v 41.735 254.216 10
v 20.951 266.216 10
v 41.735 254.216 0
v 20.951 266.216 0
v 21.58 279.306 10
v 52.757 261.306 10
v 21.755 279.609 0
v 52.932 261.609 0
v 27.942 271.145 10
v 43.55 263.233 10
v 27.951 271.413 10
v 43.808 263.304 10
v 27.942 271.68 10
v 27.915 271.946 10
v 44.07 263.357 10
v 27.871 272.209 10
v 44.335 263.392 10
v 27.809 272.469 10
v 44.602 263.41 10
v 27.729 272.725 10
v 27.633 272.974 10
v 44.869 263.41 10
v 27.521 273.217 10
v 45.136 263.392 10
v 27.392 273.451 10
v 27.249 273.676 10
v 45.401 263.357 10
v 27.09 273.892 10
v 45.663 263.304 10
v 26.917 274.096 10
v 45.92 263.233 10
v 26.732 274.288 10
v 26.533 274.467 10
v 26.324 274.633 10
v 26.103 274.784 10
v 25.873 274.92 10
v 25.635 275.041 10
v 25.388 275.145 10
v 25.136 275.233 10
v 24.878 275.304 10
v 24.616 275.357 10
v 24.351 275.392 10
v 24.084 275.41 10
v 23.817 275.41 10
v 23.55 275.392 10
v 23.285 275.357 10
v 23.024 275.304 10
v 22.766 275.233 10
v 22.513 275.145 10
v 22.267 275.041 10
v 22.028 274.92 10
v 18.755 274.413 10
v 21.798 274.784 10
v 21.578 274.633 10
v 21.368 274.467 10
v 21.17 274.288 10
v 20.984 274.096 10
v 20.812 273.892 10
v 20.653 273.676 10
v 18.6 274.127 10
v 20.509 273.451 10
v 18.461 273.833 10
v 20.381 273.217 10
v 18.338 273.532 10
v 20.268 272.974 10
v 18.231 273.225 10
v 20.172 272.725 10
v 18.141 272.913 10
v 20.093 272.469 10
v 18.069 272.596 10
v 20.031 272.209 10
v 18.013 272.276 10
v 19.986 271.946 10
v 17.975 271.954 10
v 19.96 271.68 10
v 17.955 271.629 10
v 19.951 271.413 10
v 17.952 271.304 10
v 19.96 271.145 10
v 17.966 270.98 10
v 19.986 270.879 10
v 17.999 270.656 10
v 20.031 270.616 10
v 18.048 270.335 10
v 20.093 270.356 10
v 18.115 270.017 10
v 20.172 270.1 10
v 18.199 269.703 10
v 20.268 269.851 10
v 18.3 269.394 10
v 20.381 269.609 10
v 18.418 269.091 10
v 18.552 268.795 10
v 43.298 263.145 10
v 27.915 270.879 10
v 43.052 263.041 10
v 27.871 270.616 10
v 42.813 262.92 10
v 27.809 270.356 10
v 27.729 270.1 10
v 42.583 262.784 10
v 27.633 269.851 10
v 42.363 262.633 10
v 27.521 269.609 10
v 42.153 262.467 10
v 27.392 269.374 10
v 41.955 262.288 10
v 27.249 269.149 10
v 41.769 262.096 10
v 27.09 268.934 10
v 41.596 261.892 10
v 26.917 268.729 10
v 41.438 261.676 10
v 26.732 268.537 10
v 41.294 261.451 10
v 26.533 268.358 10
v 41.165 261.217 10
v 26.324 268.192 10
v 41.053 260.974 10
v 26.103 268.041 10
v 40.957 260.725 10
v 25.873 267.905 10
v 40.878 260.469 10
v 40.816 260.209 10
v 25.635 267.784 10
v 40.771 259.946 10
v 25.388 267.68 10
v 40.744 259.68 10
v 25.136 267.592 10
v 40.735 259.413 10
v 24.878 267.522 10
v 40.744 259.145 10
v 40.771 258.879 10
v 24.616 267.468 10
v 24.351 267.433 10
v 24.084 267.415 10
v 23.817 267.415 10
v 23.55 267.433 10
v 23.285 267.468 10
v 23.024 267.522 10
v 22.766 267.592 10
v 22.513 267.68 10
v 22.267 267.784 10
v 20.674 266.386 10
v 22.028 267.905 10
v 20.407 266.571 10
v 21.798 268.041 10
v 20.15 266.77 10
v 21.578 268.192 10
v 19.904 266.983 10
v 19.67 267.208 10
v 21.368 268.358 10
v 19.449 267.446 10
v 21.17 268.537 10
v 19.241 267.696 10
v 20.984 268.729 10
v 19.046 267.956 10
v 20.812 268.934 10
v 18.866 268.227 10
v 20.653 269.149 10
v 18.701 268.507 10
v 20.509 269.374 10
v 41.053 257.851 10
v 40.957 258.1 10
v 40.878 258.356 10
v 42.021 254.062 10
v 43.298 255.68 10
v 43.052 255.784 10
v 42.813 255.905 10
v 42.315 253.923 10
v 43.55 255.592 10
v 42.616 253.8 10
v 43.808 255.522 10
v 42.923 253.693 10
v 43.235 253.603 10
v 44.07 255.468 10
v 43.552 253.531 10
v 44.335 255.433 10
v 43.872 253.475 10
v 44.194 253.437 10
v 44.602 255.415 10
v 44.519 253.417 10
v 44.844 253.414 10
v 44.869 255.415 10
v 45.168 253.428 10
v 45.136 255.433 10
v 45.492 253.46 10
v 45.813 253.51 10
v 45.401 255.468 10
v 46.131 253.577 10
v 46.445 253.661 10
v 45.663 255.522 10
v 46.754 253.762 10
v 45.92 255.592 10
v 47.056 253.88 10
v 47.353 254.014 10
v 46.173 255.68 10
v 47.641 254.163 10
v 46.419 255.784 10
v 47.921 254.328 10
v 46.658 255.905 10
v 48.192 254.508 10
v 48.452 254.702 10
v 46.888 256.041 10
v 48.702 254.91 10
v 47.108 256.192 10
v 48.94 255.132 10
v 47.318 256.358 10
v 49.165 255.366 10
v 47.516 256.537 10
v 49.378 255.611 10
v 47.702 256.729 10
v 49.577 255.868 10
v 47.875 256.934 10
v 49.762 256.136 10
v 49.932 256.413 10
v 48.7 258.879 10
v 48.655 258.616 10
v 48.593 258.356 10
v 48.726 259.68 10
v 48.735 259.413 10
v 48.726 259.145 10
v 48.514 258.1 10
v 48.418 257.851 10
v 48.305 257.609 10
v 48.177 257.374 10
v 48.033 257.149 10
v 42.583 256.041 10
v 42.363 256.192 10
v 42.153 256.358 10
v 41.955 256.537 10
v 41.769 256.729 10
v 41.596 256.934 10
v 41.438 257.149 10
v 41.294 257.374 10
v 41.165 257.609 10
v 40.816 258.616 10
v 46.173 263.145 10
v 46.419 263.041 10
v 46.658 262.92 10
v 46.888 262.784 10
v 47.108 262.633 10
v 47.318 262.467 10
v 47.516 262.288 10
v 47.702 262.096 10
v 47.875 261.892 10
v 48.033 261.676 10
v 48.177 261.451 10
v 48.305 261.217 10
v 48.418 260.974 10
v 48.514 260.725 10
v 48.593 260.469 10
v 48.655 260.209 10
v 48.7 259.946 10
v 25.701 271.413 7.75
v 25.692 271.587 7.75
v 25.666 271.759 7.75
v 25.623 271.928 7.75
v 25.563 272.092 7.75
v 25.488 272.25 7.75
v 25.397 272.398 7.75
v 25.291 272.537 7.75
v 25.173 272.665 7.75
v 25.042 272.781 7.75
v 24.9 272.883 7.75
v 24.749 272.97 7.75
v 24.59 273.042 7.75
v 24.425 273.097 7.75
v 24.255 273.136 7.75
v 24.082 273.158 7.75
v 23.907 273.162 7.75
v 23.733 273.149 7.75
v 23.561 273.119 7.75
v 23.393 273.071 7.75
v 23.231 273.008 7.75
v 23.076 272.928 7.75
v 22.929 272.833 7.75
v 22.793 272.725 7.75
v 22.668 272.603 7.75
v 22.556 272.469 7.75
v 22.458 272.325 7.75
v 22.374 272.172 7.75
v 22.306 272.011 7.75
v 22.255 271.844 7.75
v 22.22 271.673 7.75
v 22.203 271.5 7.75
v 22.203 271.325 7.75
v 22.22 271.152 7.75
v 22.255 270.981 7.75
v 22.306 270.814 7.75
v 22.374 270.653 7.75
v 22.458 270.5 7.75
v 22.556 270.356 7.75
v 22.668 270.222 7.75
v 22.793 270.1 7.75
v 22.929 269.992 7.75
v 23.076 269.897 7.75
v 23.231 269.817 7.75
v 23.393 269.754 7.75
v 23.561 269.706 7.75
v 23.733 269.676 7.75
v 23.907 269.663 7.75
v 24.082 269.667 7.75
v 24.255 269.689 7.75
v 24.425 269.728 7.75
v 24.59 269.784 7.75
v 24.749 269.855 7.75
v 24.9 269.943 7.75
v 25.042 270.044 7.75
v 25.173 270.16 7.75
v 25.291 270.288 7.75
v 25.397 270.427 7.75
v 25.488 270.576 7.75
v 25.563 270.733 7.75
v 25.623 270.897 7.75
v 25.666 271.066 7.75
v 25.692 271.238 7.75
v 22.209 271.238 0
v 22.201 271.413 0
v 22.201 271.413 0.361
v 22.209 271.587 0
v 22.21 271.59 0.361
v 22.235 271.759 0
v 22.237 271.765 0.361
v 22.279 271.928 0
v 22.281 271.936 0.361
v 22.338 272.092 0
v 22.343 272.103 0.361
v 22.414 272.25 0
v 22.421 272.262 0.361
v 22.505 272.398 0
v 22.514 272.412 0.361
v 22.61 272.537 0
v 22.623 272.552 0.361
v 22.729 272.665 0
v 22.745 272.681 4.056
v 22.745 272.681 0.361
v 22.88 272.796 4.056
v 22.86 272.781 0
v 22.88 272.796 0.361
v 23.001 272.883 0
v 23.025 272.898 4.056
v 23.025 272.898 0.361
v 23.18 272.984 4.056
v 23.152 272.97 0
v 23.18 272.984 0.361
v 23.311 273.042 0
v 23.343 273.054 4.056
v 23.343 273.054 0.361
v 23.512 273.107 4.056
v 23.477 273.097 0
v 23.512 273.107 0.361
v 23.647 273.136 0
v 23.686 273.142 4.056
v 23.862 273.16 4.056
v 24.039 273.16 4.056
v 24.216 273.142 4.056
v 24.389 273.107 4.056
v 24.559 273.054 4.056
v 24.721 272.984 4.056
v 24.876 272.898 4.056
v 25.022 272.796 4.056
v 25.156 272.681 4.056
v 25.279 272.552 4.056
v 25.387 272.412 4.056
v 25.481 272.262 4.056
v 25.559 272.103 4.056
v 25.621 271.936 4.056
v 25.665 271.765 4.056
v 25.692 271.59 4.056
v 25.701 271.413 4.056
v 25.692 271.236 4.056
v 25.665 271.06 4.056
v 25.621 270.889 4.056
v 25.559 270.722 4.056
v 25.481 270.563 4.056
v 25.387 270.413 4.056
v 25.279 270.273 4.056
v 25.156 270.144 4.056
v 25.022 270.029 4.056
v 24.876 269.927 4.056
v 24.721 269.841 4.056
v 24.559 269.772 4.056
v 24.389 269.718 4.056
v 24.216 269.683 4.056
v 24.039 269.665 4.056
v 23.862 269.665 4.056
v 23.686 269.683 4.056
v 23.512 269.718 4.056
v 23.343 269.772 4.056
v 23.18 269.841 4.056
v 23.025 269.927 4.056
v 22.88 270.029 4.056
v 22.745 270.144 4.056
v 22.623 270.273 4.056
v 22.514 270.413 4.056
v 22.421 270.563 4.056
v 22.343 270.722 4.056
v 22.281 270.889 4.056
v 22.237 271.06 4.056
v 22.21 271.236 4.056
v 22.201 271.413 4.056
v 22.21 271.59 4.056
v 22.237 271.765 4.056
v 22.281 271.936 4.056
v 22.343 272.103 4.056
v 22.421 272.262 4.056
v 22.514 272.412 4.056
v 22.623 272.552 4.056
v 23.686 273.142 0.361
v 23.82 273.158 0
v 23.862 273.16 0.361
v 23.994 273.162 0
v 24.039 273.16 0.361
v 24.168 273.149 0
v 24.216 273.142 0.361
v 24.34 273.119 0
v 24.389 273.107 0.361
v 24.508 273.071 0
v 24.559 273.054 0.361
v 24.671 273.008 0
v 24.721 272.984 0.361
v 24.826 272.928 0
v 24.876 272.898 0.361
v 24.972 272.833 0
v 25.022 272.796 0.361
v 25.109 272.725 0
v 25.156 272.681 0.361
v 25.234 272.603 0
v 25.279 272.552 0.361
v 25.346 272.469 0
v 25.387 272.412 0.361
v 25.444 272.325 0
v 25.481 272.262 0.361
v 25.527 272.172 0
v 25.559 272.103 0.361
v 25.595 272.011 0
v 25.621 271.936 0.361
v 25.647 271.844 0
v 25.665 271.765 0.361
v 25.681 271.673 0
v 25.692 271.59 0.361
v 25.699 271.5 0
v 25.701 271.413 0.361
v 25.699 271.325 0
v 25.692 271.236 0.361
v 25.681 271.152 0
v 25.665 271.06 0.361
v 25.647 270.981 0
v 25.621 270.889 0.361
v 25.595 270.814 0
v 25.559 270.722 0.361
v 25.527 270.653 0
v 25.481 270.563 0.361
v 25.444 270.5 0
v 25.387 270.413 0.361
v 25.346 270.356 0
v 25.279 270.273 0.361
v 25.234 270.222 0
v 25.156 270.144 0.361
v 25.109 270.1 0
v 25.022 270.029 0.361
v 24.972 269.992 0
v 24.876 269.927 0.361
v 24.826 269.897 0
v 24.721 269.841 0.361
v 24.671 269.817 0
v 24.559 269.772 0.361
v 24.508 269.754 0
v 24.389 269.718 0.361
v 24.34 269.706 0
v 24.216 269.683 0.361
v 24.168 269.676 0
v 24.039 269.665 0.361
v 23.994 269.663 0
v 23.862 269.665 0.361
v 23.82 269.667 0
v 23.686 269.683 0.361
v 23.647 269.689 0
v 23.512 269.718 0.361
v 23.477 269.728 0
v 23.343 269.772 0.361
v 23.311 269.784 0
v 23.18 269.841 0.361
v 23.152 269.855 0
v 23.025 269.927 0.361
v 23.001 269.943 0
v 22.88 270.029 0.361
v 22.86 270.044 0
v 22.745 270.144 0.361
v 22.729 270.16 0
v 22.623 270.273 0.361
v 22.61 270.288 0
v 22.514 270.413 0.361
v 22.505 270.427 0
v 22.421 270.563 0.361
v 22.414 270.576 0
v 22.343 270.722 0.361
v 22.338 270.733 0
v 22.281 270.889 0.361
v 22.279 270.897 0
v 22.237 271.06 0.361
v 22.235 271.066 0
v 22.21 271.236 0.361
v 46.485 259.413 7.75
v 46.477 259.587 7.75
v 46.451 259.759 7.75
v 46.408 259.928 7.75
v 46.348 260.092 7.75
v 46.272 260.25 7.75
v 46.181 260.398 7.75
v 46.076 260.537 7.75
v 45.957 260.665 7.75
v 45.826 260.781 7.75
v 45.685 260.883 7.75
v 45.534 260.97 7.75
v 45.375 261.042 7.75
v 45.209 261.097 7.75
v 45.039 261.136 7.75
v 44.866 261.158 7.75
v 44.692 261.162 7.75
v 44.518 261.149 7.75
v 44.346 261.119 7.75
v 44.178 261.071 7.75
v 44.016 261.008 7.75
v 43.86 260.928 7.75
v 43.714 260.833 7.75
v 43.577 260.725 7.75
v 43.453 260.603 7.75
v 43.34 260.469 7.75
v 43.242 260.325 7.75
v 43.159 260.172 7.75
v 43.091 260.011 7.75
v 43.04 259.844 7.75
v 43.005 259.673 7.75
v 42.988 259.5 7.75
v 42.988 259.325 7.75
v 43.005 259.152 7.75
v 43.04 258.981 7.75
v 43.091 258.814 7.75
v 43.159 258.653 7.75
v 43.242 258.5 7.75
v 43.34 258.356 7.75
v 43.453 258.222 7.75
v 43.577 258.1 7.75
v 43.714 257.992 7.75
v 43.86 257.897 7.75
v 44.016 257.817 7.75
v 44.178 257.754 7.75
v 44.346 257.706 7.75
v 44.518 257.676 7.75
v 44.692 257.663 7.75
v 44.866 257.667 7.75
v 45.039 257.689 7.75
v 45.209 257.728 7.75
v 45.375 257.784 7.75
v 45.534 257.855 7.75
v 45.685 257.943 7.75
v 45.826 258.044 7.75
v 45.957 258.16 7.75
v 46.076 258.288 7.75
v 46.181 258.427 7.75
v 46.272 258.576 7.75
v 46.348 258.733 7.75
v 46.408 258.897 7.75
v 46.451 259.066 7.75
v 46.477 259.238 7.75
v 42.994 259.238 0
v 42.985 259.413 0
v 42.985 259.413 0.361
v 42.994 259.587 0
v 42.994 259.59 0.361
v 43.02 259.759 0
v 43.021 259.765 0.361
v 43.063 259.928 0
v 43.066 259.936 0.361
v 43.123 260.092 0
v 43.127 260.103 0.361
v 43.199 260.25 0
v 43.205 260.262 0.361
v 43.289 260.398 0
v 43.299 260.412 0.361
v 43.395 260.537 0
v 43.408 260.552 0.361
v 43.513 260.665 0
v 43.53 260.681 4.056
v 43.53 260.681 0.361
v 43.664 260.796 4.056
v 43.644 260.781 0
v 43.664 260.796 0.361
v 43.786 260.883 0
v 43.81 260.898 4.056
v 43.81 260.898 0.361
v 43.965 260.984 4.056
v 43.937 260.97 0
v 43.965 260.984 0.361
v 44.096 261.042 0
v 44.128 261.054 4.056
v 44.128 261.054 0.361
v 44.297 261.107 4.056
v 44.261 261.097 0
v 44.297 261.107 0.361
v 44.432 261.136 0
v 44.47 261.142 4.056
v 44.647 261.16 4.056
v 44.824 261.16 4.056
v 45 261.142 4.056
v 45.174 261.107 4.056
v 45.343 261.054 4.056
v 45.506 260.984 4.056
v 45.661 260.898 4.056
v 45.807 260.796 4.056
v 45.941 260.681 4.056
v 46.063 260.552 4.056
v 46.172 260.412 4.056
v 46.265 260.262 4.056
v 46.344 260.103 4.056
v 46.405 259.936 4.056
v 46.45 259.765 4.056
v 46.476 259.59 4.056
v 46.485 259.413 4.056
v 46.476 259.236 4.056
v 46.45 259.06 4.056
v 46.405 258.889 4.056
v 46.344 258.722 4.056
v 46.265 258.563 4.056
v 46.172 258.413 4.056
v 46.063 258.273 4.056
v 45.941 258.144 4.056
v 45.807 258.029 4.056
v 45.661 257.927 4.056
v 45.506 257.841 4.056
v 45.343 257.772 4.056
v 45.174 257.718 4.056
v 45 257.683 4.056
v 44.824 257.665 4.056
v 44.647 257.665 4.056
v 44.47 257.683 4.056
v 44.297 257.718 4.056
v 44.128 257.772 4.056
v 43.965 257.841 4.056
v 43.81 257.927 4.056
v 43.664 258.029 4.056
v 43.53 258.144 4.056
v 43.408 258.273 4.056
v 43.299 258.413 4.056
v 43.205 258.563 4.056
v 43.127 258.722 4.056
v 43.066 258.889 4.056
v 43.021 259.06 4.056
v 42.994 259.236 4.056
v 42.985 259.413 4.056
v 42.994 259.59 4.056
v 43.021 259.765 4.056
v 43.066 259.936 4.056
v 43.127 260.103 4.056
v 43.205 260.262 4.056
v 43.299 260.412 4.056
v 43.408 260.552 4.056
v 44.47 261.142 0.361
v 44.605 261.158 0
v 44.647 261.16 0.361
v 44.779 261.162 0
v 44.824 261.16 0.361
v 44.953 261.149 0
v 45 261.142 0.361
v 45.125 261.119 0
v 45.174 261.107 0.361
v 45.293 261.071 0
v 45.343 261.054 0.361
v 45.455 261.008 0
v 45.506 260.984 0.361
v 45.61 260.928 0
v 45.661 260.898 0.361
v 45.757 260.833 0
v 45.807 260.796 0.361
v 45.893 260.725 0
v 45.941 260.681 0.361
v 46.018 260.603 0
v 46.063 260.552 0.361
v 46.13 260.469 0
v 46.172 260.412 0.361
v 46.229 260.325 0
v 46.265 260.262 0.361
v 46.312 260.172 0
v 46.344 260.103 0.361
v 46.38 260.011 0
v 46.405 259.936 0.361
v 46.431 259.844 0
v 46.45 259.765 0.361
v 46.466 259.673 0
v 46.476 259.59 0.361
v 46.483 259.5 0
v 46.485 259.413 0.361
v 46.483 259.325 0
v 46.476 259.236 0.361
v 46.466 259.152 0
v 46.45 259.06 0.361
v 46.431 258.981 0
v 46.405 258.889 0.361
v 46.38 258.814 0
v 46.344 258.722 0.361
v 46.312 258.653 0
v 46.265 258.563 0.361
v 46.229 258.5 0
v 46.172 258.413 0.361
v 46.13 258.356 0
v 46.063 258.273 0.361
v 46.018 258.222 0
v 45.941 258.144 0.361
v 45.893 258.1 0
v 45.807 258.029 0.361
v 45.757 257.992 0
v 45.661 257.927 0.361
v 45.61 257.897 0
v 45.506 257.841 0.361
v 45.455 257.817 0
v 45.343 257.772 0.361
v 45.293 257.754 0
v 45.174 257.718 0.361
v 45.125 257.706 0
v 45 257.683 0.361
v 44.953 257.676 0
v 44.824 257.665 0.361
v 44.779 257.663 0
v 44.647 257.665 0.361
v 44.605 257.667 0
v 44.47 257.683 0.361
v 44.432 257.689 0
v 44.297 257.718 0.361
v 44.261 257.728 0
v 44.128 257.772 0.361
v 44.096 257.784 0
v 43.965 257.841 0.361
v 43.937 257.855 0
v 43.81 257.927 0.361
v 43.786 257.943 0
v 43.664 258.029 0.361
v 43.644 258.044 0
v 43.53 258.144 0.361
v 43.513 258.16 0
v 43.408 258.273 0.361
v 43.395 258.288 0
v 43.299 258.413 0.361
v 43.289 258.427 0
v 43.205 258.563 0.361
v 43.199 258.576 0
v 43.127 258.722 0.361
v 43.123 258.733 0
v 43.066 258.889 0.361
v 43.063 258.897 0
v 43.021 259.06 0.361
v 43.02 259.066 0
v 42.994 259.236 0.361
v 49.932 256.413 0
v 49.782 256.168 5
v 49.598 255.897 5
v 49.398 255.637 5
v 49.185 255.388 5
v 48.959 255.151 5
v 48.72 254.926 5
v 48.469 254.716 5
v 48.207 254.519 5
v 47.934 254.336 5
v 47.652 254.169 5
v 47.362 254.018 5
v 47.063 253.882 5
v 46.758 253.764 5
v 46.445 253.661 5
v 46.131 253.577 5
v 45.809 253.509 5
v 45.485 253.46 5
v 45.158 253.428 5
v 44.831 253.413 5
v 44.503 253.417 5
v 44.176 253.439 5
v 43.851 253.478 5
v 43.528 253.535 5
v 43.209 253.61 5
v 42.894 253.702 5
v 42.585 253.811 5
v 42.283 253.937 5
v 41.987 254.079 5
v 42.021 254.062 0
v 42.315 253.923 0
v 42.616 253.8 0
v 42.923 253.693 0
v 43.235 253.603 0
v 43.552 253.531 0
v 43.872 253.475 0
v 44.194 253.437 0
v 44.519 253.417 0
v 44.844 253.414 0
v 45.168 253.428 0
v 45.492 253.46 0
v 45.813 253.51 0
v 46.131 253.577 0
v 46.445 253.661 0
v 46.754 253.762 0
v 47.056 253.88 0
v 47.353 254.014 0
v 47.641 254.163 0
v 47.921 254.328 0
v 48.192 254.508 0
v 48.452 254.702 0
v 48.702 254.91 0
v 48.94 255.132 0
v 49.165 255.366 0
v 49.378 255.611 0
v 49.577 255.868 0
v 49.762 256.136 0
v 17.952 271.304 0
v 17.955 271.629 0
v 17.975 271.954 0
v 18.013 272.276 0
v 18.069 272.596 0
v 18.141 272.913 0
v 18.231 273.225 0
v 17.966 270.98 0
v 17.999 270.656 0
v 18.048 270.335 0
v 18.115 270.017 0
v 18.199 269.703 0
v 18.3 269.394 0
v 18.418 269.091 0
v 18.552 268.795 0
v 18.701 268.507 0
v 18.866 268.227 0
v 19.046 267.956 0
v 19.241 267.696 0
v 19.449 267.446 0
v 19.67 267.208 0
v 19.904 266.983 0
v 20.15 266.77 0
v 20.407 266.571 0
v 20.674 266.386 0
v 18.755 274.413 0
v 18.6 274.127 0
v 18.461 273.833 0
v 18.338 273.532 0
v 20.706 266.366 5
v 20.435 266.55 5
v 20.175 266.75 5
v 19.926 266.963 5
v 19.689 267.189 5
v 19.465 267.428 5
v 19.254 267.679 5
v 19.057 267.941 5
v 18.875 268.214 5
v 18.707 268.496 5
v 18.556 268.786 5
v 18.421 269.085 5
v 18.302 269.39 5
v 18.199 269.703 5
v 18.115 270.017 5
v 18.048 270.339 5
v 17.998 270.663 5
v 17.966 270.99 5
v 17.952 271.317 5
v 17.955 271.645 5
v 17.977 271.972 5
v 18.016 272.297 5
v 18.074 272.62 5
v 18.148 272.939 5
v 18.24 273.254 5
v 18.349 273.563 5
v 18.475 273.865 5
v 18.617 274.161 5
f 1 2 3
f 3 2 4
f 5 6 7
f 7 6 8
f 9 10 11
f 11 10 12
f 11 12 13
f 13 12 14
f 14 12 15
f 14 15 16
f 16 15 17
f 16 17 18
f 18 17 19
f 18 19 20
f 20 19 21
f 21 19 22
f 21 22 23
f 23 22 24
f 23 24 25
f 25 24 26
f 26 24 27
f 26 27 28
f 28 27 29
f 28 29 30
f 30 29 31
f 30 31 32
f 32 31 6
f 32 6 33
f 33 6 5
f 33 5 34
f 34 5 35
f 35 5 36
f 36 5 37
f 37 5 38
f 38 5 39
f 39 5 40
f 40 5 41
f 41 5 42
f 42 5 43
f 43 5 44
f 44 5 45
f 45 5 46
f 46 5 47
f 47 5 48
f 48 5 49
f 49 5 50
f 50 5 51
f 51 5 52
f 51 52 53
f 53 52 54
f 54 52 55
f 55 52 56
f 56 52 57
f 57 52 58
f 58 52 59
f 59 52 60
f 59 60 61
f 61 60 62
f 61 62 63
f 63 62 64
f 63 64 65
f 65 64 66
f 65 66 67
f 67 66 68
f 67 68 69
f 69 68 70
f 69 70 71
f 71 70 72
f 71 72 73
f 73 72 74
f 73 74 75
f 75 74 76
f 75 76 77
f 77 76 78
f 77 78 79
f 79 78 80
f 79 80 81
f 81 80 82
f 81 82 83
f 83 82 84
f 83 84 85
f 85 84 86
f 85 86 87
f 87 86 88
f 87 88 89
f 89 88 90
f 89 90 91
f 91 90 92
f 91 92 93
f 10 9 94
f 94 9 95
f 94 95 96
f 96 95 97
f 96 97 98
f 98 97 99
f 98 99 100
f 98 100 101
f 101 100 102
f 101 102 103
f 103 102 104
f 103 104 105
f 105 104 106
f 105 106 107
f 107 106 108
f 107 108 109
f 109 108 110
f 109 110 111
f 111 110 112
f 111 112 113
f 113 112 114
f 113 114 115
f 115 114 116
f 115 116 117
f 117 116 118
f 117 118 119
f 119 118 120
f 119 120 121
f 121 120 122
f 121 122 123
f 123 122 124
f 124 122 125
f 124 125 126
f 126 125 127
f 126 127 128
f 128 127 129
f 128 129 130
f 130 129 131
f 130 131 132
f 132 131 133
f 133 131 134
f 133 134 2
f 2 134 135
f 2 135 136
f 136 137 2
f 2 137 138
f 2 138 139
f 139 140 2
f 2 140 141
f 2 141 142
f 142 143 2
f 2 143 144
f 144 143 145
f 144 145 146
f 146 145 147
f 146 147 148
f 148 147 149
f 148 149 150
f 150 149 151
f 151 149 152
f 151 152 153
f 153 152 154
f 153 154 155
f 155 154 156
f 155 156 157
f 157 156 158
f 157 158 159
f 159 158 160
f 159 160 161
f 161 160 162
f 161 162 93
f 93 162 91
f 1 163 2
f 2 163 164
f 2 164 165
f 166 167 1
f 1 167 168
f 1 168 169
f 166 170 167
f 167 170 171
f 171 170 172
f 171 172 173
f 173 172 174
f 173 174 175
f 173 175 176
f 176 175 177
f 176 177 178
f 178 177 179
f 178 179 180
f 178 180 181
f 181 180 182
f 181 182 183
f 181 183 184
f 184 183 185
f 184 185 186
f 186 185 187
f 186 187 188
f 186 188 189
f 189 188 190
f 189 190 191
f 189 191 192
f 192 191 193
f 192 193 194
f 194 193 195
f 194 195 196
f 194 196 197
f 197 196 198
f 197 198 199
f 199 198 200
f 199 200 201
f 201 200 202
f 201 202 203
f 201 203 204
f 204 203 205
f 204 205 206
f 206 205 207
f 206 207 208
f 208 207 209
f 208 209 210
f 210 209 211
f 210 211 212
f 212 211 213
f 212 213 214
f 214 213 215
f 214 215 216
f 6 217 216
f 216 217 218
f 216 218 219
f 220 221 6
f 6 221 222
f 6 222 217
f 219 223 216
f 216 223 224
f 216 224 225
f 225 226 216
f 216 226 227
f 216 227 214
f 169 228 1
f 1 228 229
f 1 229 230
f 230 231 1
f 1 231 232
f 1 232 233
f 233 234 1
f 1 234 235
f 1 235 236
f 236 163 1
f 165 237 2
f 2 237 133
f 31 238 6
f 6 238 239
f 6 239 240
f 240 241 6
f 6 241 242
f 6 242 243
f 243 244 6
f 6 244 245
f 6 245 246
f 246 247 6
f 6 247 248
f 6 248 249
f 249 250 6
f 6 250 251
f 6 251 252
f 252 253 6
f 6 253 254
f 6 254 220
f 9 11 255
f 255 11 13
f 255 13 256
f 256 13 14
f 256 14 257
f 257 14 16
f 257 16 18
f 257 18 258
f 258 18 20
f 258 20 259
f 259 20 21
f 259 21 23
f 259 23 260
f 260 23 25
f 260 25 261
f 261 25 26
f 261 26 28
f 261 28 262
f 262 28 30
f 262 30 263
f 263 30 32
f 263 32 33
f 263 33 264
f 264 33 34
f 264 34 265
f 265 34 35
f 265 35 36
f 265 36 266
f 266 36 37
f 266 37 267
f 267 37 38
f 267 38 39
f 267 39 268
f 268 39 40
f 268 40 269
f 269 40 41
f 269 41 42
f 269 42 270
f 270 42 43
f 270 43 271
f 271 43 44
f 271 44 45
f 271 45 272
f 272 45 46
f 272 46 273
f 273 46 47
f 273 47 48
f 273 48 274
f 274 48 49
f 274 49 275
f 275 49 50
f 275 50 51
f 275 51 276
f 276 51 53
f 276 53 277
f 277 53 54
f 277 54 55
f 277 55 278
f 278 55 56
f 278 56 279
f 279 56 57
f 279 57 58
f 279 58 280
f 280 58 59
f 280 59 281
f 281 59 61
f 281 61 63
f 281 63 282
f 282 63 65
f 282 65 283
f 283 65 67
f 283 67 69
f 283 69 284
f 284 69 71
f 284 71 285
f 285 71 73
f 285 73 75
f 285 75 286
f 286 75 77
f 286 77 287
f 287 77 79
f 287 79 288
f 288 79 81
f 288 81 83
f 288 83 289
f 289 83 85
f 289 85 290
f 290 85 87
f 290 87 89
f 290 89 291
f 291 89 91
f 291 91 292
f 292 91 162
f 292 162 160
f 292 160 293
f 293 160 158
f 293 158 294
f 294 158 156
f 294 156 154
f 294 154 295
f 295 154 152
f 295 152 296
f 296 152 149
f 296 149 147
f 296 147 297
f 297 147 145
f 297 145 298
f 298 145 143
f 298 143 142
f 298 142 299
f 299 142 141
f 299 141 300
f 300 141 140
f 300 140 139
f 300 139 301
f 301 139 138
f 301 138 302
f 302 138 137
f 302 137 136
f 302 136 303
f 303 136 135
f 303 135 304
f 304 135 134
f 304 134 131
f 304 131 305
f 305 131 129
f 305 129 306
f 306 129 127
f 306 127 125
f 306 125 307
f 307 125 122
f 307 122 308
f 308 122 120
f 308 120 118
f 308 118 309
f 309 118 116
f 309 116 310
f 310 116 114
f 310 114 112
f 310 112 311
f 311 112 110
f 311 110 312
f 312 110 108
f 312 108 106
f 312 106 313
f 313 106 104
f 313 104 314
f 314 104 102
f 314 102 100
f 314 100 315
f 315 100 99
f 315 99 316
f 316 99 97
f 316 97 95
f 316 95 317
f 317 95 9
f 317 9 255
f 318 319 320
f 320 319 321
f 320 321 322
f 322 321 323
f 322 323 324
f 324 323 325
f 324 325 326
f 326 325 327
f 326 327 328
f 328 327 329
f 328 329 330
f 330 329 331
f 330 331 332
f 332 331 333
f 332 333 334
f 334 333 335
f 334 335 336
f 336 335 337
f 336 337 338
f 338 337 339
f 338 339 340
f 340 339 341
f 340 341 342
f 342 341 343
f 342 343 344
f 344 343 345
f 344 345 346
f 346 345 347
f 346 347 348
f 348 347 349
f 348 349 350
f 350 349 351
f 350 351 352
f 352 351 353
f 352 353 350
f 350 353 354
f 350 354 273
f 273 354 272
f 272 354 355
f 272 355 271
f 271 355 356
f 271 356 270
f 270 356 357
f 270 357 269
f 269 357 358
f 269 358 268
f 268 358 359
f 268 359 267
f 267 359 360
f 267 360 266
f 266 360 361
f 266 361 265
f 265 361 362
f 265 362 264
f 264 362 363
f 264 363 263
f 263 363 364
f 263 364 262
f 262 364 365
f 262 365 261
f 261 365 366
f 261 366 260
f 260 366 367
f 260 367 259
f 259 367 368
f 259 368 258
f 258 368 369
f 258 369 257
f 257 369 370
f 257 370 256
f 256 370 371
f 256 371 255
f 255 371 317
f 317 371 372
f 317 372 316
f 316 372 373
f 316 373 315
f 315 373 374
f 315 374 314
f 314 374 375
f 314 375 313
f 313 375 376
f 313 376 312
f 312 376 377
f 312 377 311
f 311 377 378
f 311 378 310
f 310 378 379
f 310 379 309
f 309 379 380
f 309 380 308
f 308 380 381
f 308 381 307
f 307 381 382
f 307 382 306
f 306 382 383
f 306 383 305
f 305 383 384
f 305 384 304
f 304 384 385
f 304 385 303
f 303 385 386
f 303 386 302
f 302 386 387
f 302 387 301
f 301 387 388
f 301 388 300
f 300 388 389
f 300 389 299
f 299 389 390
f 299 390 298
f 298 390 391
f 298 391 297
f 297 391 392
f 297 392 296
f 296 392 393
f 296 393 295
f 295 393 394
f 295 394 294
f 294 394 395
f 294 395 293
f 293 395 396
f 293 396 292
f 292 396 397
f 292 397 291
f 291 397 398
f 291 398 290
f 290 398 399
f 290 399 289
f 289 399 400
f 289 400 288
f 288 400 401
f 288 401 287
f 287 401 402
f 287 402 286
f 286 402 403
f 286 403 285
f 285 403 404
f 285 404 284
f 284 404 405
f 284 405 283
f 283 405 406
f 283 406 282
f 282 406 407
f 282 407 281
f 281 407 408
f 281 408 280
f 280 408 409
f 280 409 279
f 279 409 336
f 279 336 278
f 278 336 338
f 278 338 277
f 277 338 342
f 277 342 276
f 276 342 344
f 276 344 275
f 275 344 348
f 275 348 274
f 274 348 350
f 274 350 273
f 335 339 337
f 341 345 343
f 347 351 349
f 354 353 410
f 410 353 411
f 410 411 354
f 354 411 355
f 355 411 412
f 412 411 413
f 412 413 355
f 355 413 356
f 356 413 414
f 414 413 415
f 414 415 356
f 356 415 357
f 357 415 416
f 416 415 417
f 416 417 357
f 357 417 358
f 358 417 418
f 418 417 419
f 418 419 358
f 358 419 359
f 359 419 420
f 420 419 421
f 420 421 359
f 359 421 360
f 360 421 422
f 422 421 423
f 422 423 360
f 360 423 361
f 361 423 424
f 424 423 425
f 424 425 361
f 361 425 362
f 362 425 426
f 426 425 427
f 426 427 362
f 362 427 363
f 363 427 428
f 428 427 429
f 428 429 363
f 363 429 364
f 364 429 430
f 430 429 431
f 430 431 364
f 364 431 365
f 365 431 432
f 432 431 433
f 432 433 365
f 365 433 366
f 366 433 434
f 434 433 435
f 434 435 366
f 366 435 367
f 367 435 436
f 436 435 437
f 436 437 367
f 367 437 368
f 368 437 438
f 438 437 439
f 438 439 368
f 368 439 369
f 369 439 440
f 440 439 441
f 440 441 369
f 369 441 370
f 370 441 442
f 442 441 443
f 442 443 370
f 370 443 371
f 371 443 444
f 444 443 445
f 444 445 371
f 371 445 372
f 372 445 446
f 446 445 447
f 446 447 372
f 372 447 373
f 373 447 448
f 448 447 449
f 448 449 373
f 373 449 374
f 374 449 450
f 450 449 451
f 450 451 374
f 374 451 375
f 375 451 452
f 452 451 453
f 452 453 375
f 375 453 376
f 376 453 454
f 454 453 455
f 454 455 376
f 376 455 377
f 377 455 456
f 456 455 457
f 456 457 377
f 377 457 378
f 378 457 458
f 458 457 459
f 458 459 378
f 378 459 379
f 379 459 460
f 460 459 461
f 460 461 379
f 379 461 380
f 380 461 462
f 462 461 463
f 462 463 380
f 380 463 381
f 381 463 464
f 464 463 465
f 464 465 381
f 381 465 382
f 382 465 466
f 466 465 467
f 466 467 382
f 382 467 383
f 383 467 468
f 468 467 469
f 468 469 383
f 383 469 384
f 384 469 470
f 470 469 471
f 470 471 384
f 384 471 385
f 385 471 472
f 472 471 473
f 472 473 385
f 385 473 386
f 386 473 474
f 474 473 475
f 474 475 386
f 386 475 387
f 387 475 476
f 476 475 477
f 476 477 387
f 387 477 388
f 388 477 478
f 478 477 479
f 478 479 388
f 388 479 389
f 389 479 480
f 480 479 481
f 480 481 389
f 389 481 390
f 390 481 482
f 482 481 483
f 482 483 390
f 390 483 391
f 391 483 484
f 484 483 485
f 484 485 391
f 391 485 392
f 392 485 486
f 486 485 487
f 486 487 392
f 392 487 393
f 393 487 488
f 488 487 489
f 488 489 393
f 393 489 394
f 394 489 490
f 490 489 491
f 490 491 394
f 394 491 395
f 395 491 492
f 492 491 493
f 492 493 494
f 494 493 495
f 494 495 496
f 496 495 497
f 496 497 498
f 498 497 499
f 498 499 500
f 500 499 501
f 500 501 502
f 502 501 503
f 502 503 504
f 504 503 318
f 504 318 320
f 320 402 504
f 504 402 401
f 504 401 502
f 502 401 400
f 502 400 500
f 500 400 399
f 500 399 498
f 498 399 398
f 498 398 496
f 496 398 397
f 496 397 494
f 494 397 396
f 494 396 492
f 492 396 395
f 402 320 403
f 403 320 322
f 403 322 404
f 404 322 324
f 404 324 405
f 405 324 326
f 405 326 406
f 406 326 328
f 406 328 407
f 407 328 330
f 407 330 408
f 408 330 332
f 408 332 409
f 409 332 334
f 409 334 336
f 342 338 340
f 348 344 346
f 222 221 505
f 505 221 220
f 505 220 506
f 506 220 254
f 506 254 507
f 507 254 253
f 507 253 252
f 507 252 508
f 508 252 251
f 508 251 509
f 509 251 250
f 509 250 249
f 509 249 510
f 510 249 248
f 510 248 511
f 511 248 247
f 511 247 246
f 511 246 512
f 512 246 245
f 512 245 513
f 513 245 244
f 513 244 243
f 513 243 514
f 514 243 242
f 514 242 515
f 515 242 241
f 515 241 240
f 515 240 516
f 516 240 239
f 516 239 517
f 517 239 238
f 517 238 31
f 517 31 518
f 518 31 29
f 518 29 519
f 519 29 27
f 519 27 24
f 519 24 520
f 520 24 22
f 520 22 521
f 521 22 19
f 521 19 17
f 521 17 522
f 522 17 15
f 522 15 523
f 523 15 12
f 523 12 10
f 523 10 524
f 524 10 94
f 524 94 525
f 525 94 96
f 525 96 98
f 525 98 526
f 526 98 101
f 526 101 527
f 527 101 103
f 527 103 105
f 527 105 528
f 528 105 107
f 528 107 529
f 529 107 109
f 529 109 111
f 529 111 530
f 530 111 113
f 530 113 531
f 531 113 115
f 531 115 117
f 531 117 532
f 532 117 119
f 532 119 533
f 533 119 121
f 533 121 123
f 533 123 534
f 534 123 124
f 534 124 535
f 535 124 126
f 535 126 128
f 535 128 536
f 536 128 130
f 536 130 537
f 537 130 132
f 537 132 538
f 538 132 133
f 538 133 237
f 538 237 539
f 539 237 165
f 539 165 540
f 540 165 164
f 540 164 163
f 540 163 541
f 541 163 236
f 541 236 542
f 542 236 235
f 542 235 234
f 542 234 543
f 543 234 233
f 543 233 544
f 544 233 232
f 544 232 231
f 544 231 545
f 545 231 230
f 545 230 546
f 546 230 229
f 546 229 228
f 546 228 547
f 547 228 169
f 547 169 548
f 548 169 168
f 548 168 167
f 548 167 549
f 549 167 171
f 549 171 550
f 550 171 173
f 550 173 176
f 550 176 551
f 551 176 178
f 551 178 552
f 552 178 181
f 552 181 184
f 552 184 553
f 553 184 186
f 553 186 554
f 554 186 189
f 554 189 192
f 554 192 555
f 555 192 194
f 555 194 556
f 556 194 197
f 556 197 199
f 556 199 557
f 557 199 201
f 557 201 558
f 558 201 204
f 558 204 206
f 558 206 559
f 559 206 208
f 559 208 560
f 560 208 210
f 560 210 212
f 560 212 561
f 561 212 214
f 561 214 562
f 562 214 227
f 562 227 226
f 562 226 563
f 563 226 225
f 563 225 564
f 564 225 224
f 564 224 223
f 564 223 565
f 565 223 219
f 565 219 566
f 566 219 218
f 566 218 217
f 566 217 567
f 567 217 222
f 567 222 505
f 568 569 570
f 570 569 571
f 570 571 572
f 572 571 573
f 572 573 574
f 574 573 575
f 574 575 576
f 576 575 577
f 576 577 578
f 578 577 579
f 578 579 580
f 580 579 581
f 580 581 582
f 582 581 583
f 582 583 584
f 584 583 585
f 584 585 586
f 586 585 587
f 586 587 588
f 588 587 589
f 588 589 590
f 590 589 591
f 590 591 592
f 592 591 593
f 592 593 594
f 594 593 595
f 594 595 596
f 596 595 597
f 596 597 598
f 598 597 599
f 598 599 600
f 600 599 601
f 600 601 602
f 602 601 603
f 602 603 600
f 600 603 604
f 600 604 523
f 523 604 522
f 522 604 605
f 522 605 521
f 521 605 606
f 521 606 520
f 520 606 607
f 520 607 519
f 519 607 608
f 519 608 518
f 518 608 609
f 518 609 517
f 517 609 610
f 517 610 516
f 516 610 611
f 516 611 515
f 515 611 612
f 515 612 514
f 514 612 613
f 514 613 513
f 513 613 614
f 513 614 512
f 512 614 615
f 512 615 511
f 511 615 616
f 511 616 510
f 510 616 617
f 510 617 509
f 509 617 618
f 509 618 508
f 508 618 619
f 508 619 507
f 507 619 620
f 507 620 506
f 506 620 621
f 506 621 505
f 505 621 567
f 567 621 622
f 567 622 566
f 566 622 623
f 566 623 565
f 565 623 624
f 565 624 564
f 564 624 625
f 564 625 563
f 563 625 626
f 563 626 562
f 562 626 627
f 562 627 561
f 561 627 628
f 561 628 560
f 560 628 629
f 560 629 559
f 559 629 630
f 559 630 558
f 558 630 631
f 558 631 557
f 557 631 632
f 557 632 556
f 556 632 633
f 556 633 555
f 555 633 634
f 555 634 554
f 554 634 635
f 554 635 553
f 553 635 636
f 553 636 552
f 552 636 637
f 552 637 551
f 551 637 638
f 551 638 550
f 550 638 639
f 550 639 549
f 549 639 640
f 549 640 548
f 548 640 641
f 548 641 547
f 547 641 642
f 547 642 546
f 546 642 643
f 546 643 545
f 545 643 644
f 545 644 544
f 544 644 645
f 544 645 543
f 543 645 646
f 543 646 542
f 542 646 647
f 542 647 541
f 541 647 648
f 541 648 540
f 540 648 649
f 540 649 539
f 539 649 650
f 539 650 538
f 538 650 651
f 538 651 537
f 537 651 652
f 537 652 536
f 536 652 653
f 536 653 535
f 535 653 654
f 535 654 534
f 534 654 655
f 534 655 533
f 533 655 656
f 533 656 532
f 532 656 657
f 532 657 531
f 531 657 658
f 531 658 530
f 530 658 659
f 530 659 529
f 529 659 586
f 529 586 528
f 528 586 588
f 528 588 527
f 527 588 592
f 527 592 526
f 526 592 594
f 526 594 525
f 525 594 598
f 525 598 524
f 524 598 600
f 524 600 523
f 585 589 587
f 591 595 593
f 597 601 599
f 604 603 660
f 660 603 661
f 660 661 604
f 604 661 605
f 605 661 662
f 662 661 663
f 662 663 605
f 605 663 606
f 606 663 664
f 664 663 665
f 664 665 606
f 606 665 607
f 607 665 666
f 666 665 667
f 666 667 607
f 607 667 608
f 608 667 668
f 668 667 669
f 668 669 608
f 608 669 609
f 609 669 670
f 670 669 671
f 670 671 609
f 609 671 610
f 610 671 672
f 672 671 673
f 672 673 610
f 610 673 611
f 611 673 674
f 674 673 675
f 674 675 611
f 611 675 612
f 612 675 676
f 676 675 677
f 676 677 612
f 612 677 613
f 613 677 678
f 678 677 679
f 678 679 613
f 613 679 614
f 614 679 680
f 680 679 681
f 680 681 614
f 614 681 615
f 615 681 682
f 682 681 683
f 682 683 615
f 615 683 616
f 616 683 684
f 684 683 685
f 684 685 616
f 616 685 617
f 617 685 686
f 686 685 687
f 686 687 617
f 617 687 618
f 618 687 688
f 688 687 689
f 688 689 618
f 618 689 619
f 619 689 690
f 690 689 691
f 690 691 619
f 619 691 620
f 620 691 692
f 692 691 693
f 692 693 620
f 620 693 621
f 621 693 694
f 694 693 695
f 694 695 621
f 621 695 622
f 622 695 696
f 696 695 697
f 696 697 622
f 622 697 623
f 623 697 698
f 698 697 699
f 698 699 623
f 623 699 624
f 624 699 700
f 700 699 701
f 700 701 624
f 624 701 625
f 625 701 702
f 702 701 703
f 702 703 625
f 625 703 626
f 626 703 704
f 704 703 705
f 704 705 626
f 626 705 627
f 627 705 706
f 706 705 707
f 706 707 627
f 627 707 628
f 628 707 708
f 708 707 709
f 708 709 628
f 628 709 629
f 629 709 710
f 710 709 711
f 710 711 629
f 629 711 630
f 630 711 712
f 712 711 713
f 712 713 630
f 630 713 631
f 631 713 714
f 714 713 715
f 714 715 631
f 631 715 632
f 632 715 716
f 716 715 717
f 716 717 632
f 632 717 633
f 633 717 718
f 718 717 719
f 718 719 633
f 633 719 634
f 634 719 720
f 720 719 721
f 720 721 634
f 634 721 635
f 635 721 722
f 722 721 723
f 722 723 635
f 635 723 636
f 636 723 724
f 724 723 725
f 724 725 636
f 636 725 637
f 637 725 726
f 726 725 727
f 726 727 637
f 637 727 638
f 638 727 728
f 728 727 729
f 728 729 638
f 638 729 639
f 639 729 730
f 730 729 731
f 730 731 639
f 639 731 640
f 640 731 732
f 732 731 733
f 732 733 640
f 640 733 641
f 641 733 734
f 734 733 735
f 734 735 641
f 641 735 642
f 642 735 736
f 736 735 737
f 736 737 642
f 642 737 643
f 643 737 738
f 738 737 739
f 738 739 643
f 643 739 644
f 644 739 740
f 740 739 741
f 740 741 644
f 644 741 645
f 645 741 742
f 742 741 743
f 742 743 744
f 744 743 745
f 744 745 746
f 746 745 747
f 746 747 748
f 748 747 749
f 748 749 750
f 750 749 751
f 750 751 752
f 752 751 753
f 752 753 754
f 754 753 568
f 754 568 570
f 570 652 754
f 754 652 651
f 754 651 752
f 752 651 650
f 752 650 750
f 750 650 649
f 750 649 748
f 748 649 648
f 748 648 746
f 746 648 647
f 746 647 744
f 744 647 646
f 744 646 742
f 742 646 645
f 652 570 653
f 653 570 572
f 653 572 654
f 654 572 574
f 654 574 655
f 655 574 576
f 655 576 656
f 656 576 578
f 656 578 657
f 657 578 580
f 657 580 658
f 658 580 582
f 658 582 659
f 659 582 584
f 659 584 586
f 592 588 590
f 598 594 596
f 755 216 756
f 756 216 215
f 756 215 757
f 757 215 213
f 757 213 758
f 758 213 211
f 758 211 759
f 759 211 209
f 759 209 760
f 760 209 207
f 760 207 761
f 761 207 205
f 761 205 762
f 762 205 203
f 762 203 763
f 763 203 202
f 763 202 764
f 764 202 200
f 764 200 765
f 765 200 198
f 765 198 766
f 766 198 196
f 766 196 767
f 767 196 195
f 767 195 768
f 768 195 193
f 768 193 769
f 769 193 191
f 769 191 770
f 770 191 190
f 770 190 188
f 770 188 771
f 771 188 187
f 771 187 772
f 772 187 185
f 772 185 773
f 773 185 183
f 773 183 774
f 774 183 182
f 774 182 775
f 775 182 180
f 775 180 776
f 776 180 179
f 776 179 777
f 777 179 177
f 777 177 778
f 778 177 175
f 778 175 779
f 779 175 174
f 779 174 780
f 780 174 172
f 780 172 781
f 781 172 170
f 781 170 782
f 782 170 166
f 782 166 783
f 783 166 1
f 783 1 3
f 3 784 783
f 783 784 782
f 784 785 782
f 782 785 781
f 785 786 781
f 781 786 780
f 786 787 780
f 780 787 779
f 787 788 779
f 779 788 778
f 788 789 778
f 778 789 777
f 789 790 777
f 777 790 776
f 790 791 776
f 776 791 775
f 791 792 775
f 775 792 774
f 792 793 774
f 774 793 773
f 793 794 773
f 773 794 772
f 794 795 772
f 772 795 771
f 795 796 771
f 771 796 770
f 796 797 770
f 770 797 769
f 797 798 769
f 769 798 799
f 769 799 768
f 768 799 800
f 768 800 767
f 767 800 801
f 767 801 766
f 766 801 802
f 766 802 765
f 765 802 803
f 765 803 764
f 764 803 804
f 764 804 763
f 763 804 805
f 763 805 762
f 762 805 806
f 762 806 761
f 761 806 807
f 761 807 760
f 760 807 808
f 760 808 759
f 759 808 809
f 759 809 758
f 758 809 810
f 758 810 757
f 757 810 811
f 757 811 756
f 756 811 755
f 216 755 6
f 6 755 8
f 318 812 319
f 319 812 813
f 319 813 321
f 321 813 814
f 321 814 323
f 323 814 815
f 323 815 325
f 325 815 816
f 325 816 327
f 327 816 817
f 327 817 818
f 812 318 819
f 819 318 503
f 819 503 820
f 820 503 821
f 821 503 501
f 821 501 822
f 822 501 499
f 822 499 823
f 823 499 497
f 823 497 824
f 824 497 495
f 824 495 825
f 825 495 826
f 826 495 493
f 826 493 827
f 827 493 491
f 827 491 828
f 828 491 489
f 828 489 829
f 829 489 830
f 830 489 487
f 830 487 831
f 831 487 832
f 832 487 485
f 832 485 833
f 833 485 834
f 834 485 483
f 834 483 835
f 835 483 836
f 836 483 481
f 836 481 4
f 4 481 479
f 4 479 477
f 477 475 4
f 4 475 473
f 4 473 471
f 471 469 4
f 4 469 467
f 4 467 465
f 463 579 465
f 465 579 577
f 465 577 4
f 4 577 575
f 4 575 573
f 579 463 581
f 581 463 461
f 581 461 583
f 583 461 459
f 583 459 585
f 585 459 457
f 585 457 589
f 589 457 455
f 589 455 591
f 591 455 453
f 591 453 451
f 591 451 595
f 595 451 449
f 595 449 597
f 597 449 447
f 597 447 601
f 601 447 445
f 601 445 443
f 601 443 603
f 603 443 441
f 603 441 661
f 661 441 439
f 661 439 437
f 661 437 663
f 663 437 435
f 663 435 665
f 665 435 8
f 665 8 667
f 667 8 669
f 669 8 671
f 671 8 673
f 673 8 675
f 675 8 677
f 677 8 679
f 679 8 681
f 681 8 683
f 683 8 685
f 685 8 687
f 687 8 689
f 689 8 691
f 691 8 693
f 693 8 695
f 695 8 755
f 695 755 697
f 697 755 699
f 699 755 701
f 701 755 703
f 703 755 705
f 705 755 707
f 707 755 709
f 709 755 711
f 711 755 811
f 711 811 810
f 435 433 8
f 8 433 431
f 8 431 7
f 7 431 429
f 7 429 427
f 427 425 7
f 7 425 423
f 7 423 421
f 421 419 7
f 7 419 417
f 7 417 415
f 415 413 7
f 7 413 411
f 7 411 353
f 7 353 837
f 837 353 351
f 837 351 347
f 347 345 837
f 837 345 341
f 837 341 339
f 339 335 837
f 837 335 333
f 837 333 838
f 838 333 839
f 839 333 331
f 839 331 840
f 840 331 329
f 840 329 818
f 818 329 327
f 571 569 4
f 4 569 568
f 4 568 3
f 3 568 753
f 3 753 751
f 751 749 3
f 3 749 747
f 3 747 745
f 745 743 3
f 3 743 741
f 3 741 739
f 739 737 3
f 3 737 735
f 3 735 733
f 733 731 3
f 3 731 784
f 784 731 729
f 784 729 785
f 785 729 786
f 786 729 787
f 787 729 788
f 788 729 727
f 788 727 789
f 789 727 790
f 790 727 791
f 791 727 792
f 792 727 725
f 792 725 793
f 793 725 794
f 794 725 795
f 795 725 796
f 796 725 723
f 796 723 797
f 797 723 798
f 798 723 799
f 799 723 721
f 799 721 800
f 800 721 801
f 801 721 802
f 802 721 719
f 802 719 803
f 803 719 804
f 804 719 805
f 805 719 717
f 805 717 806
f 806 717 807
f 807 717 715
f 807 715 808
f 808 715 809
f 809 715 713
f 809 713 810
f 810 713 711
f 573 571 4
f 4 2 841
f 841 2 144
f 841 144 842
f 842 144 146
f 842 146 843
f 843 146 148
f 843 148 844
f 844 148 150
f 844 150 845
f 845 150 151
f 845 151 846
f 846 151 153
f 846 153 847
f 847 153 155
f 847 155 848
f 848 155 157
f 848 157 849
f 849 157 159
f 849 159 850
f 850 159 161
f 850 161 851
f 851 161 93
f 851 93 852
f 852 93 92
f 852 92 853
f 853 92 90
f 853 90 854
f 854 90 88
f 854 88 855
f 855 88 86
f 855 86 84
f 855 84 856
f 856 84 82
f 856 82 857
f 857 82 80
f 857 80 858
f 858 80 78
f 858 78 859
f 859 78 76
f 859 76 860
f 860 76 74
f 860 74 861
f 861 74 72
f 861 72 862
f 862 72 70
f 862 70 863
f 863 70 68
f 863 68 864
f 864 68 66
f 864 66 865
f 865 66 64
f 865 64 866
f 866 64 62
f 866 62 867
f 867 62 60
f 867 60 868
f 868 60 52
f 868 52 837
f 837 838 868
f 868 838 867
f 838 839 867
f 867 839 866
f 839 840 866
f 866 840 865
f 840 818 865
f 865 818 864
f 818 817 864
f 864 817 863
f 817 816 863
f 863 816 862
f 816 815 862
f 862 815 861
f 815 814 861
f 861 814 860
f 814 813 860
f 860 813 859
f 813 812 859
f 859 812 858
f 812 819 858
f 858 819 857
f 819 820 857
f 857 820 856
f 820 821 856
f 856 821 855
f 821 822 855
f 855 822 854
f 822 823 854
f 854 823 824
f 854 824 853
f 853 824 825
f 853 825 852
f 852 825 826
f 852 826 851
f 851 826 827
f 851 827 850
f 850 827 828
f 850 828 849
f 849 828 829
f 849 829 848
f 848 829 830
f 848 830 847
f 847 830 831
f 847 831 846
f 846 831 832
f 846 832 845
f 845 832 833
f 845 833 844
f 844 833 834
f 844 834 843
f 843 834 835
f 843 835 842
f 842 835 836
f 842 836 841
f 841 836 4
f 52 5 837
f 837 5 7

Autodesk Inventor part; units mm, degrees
ref_plane "YZ Plane" through (0, 0, 0) normal (1, 0, 0) x (0, 1, 0)
ref_plane "XZ Plane" through (0, 0, 0) normal (0, 1, 0) x (-1, 0, 0)
ref_plane "XY Plane" through (0, 0, 0) normal (0, 0, 1) x (1, 0, 0)
ref_plane "Work Plane1" through (0, 0, 0) normal (0, 0, 1) x (1, 0, 0)
sketch "Sketch1" plane through (0, 0, 0) normal (0, 0, 1) x (1, 0, 0)
  line L0 (39.878985, 283.001047) -> (46.807188, 279.001047)
  line L1 (118.687297, 237.501047) -> (-32.001123, 324.501047)
  line L2 (118.687297, 237.501047) -> (112.687297, 227.108743)
  line L3 (-38.001123, 314.108743) -> (112.687297, 227.108743)
  line L4 (-32.001123, 324.501047) -> (-38.001123, 314.108743)
  line L5 (40.807188, 268.608743) -> (46.807188, 279.001047)
  line L6 (33.878985, 272.608743) -> (39.878985, 283.001047)
  line L7 (40.807188, 268.608743) -> (33.878985, 272.608743)
  circle A0 centre (68.259454, 214.654052) radius 27.5 construction
  line L8 (52.931544, 261.608743) -> (21.754629, 279.608743)
  line L9 (21.754629, 279.608743) -> (15.754629, 269.216438)
  line L10 (15.754629, 269.216438) -> (46.931544, 251.216438)
  line L11 (46.931544, 251.216438) -> (52.931544, 261.608743)
  point P0 (0, 0)
  dimension "d0" = 55
  dimension "d1" = 12
  dimension "d2" = 14
  dimension "d3" = 14
sketch "Sketch1 outline for Extrusion1" plane through (0, 0, 0) normal (0, 0, 1) x (1, 0, 0)
  line L0 (15.754629, 269.216438) -> (46.931544, 251.216438)
  line L1 (21.754629, 279.608743) -> (15.754629, 269.216438)
  line L2 (52.931544, 261.608743) -> (21.754629, 279.608743)
  line L3 (46.931544, 251.216438) -> (52.931544, 261.608743)
extrude "Extrusion1" add sketch "Sketch1 outline for Extrusion1" along normal blind 10
fillet "Fillet1" radius 6 2 edges at (15.7546, 269.2164, 5) (46.9315, 251.2164, 5)
sketch "Sketch2" plane through (0, 0, 10) normal (0, 0, 1) x (1, 0, 0)
  arc A0 (18.754629, 274.41259) -> (20.950782, 266.216438) centre (23.950782, 271.41259) ccw
  arc A1 (41.735391, 254.216438) -> (49.931544, 256.41259) centre (44.735391, 259.41259) ccw
  point P0 (0, 0)
hole "Hole1" at (23.950782, 271.41259, 10) at (44.735391, 259.41259, 10) direction (0, 0, -1) diameter 3.5 end through all countersink diameter 8 countersink angle 90
sketch "Sketch3" plane through (0, 0, 10) normal (0, 0, 1) x (1, 0, 0)
  line L0 (52.931544, 261.608743) -> (21.754629, 279.608743)
  line L1 (42.539239, 267.608743) -> (32.146934, 273.608743)
  line L2 (32.146934, 273.608743) -> (26.146934, 263.216438)
  line L3 (26.146934, 263.216438) -> (36.539239, 257.216438)
  line L4 (36.539239, 257.216438) -> (42.539239, 267.608743)
  line L5 (21.754629, 279.608743) -> (18.754629, 274.41259)
  line L6 (49.931544, 256.41259) -> (52.931544, 261.608743)
  point P0 (0, 0)
  dimension "d14" = 12
  dimension "d15" = 12
  dimension "d16" = 12
sketch "Sketch3 outline for Extrusion2" plane through (0, 0, 10) normal (0, 0, 1) x (1, 0, 0)
  line L0 (26.146934, 263.216438) -> (36.539239, 257.216438)
  line L1 (32.146934, 273.608743) -> (26.146934, 263.216438)
  line L2 (42.539239, 267.608743) -> (32.146934, 273.608743)
  line L3 (36.539239, 257.216438) -> (42.539239, 267.608743)
extrude "Extrusion2" add sketch "Sketch3 outline for Extrusion2" along normal blind 47
sketch "Sketch4" plane through (21.754629, 279.608743, 10) normal (0.5, 0.8660254, 0) x (0.8660254, -0.5, 0)
  circle A0 centre (18, -41) radius 4 projected
  point P0 (120.96431, 10)
sketch "Sketch4 outline for Extrusion3" plane through (21.754629, 279.608743, 10) normal (0.5, 0.8660254, 0) x (0.8660254, -0.5, 0)
  circle A0 centre (18, -41) radius 4
extrude "Extrusion3" cut sketch "Sketch4 outline for Extrusion3" against normal through all
fillet "Fillet2" radius 6 2 edges at (39.5392, 262.4126, 57) (29.1469, 268.4126, 57)
fillet "Fillet3" radius 1 2 edges at (29.1469, 268.4126, 10) (39.5392, 262.4126, 10)
draft "FaceDraft1" angle 2 pull direction (0, 0, 1) faces at (37.48227, 270.528385, 23.009722) fixed edges at (37.343087, 270.608743, 0)
sketch "Sketch6" plane through (49.931544, 256.41259, 10) normal (0.8660254, -0.5, 0) x (0, 0, -1)
  line L0 (0, 0) -> (0, -6)
  line L1 (0, -6) -> (10, -6)
  line L2 (10, -6) -> (10, 0)
  line L3 (10, 0) -> (0, 0)
  line L4 (10, 0) -> (0, 0)
  line L5 (10, 0) -> (10, 6)
  line L6 (10, 6) -> (0, 5.650792)
  line L7 (0, 0) -> (0, 5.650792)
  line L8 (-1, -6) -> (0, -6)
  line L9 (0, -6) -> (-53.172101, -6)
  line L10 (-53.172101, -6) -> (-53.172101, 15.66156)
  line L11 (-53.172101, 15.66156) -> (0, 15.66156)
  line L12 (0, 15.66156) -> (0, -6)
  point P0 (10, -247.025589)
  point P1 (0, 5.650792)
sketch "Sketch6 outline for Extrusion4" plane through (49.931544, 256.41259, 10) normal (0.8660254, -0.5, 0) x (0, 0, -1)
  line L0 (0, 15.66156) -> (-53.172101, 15.66156)
  line L1 (0, 5.650792) -> (0, 15.66156)
  line L2 (0, 0) -> (0, 5.650792)
  line L3 (0, -6) -> (0, 0)
  line L4 (-1, -6) -> (0, -6)
  line L5 (-53.172101, -6) -> (-1, -6)
  line L6 (-53.172101, 15.66156) -> (-53.172101, -6)
extrude "Extrusion4" cut sketch "Sketch6 outline for Extrusion4" against normal through all
equation "\"d2\" = d3"
equation "\"d15\" = d16"
properties part number "backcover_clamp_mini"
